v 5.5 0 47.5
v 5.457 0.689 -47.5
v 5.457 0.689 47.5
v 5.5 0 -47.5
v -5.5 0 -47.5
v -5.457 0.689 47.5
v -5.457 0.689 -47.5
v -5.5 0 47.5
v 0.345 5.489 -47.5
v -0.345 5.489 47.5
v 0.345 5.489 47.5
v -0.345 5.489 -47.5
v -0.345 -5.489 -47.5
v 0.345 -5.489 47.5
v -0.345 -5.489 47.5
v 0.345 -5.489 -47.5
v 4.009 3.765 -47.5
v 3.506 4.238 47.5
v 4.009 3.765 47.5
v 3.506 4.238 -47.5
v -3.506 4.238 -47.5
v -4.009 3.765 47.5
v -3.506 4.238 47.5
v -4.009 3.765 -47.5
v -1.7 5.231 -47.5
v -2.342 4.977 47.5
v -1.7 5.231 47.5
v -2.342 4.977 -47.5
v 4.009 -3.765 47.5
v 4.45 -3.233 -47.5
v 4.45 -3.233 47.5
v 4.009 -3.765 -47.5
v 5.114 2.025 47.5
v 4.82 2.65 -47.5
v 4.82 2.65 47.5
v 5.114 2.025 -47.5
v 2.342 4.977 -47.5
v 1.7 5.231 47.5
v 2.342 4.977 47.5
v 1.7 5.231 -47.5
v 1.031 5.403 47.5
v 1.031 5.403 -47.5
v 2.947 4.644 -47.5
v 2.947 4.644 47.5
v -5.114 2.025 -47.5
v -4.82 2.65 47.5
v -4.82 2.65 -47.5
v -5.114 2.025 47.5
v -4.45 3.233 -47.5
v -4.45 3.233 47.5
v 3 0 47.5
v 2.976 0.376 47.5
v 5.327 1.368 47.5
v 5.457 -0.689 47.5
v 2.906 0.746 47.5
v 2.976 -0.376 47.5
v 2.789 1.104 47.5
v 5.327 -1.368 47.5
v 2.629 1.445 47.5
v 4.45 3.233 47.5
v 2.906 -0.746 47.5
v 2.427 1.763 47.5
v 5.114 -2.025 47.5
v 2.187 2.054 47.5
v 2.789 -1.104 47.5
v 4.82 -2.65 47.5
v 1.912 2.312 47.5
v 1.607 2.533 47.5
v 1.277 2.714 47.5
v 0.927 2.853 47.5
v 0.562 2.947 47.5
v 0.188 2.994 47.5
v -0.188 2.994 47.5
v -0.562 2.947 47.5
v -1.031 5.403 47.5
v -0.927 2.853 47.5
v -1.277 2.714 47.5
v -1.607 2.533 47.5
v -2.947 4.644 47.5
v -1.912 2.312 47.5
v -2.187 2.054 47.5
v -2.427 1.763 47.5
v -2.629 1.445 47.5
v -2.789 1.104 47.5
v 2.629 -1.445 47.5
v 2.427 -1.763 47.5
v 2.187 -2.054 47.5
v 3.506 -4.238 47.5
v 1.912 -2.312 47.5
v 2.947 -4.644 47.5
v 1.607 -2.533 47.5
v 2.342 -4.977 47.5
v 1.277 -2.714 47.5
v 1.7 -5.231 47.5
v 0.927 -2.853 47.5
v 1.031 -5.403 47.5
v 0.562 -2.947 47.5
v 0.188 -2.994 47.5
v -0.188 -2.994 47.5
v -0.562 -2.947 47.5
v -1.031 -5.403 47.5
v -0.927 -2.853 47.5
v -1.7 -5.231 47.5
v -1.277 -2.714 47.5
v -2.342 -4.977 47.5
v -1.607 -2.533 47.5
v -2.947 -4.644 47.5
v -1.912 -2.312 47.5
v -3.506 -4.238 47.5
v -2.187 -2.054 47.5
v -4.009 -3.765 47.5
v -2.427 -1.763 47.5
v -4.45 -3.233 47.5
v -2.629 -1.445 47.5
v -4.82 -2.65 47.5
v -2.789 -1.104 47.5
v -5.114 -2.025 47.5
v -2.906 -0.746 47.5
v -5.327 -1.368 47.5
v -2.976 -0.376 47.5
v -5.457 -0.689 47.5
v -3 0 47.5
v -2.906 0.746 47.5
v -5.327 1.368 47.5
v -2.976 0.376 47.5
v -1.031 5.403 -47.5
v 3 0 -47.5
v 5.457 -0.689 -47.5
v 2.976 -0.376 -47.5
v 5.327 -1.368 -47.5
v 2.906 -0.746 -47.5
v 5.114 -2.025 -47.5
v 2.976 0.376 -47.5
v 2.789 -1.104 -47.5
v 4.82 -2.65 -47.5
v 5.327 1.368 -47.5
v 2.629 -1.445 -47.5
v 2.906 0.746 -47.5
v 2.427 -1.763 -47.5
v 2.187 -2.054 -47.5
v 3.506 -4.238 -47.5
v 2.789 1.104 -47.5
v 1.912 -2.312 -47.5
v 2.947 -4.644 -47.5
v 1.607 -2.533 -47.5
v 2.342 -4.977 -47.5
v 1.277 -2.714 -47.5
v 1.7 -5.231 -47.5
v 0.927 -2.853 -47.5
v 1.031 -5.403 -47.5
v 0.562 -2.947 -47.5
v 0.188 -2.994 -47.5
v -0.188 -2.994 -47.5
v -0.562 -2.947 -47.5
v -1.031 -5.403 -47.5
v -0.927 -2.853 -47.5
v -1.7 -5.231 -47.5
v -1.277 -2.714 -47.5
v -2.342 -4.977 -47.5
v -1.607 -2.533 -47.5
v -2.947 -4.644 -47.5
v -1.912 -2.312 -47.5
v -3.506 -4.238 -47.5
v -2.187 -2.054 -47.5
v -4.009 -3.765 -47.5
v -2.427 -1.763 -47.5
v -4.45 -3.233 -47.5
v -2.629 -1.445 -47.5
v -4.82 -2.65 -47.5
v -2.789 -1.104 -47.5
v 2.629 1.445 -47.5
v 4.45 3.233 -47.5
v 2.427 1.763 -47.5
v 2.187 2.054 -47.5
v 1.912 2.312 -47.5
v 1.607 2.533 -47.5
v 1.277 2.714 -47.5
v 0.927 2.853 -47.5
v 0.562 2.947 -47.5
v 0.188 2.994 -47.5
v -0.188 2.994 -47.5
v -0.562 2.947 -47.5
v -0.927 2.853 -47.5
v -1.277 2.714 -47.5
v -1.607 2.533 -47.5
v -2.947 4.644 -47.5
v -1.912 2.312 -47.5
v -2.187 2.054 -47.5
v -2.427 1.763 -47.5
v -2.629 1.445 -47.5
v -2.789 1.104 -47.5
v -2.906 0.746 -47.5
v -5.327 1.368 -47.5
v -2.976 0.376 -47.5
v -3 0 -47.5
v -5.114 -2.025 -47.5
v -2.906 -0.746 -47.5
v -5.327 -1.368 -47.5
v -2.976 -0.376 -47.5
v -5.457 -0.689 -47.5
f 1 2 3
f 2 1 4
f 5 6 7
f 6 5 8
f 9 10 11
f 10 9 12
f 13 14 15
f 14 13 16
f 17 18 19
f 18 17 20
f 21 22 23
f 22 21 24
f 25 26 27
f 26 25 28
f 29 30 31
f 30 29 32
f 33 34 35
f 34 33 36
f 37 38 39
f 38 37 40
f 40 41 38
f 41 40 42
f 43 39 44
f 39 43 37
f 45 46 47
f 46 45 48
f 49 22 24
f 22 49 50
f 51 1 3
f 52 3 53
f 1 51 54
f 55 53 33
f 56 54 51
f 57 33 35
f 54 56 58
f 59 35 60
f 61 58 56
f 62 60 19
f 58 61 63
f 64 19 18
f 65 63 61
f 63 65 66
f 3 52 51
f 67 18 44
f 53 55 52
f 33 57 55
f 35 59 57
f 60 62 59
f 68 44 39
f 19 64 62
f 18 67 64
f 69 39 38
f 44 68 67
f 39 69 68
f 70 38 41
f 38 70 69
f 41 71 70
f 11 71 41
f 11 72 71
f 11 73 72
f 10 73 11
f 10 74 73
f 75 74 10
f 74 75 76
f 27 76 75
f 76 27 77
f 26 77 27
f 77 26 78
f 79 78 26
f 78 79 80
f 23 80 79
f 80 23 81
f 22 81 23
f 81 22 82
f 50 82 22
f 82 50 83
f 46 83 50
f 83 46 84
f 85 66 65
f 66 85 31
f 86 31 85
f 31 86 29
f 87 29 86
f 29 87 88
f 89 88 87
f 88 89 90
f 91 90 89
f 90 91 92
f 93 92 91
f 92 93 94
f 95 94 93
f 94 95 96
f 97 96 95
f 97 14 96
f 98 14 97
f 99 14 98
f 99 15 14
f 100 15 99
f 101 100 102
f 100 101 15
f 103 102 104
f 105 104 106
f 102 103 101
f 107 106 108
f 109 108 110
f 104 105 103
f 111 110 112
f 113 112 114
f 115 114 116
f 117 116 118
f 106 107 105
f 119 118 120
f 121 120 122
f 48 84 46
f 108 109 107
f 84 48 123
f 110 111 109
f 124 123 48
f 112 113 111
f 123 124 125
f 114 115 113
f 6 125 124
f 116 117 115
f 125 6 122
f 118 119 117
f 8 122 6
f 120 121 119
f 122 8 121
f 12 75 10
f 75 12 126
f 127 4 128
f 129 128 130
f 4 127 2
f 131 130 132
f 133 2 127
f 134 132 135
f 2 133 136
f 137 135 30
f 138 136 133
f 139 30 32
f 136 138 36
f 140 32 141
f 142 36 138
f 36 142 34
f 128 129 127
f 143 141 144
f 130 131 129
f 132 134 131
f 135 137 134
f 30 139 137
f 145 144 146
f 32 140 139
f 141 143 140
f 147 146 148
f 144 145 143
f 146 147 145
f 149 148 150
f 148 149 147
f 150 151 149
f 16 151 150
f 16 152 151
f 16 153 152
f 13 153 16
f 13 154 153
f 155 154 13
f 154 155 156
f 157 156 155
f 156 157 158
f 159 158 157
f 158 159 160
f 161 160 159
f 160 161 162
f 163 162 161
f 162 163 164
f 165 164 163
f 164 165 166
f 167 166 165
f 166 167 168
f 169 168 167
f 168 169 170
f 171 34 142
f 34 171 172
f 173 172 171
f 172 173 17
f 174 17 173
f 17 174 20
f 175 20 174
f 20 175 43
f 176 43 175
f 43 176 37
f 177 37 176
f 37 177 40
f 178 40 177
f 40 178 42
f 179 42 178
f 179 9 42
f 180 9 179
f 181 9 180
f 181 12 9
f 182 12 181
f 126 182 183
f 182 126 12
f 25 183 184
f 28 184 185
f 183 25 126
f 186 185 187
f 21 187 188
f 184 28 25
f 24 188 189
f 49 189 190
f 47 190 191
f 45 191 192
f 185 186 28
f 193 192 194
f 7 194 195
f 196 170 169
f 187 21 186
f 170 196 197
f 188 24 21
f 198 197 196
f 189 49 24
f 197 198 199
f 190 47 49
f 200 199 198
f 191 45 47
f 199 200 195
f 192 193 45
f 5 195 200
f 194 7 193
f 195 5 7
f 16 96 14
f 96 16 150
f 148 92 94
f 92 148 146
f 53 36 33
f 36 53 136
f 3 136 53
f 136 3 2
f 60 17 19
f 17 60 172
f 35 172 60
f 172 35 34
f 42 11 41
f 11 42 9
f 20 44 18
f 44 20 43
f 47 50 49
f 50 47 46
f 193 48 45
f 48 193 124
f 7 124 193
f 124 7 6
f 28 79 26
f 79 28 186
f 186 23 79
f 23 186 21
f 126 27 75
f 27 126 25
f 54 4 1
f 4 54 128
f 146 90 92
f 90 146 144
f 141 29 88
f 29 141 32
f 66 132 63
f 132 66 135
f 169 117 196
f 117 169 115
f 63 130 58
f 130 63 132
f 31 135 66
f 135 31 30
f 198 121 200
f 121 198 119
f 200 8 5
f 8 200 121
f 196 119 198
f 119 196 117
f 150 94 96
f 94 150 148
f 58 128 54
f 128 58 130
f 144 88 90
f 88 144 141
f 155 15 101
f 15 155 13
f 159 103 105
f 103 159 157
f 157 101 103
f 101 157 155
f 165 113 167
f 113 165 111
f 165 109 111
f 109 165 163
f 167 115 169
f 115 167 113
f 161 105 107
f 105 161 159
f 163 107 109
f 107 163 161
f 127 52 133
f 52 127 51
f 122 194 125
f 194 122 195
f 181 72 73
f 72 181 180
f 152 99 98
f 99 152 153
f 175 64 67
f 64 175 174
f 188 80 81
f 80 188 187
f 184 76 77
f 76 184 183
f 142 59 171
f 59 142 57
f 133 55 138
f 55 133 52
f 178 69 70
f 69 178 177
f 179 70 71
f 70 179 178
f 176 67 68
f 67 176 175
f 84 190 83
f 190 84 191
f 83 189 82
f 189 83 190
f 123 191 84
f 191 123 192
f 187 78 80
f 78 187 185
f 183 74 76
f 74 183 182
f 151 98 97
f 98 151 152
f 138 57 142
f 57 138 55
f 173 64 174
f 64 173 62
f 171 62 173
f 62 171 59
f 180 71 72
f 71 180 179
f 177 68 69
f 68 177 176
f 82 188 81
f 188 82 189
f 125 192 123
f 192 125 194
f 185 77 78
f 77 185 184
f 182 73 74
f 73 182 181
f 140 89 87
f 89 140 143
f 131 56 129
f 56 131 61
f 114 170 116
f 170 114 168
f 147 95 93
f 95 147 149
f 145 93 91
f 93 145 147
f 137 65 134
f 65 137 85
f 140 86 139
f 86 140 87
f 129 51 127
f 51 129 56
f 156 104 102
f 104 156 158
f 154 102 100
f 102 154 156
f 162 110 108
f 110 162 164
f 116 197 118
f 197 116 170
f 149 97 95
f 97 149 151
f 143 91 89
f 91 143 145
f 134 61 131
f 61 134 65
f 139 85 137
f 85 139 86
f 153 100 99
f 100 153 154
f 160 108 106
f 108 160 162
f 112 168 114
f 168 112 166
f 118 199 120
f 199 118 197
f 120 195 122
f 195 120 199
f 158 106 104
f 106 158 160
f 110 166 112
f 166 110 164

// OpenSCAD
$fn = 50;


difference() {
	union() {
		translate(v = [0, 0, -47.5000000000]) {
			cylinder(h = 95, r = 5.5000000000);
		}
	}
	union() {
		translate(v = [0, 0, -100.0000000000]) {
			cylinder(h = 200, r = 3);
		}
	}
}
